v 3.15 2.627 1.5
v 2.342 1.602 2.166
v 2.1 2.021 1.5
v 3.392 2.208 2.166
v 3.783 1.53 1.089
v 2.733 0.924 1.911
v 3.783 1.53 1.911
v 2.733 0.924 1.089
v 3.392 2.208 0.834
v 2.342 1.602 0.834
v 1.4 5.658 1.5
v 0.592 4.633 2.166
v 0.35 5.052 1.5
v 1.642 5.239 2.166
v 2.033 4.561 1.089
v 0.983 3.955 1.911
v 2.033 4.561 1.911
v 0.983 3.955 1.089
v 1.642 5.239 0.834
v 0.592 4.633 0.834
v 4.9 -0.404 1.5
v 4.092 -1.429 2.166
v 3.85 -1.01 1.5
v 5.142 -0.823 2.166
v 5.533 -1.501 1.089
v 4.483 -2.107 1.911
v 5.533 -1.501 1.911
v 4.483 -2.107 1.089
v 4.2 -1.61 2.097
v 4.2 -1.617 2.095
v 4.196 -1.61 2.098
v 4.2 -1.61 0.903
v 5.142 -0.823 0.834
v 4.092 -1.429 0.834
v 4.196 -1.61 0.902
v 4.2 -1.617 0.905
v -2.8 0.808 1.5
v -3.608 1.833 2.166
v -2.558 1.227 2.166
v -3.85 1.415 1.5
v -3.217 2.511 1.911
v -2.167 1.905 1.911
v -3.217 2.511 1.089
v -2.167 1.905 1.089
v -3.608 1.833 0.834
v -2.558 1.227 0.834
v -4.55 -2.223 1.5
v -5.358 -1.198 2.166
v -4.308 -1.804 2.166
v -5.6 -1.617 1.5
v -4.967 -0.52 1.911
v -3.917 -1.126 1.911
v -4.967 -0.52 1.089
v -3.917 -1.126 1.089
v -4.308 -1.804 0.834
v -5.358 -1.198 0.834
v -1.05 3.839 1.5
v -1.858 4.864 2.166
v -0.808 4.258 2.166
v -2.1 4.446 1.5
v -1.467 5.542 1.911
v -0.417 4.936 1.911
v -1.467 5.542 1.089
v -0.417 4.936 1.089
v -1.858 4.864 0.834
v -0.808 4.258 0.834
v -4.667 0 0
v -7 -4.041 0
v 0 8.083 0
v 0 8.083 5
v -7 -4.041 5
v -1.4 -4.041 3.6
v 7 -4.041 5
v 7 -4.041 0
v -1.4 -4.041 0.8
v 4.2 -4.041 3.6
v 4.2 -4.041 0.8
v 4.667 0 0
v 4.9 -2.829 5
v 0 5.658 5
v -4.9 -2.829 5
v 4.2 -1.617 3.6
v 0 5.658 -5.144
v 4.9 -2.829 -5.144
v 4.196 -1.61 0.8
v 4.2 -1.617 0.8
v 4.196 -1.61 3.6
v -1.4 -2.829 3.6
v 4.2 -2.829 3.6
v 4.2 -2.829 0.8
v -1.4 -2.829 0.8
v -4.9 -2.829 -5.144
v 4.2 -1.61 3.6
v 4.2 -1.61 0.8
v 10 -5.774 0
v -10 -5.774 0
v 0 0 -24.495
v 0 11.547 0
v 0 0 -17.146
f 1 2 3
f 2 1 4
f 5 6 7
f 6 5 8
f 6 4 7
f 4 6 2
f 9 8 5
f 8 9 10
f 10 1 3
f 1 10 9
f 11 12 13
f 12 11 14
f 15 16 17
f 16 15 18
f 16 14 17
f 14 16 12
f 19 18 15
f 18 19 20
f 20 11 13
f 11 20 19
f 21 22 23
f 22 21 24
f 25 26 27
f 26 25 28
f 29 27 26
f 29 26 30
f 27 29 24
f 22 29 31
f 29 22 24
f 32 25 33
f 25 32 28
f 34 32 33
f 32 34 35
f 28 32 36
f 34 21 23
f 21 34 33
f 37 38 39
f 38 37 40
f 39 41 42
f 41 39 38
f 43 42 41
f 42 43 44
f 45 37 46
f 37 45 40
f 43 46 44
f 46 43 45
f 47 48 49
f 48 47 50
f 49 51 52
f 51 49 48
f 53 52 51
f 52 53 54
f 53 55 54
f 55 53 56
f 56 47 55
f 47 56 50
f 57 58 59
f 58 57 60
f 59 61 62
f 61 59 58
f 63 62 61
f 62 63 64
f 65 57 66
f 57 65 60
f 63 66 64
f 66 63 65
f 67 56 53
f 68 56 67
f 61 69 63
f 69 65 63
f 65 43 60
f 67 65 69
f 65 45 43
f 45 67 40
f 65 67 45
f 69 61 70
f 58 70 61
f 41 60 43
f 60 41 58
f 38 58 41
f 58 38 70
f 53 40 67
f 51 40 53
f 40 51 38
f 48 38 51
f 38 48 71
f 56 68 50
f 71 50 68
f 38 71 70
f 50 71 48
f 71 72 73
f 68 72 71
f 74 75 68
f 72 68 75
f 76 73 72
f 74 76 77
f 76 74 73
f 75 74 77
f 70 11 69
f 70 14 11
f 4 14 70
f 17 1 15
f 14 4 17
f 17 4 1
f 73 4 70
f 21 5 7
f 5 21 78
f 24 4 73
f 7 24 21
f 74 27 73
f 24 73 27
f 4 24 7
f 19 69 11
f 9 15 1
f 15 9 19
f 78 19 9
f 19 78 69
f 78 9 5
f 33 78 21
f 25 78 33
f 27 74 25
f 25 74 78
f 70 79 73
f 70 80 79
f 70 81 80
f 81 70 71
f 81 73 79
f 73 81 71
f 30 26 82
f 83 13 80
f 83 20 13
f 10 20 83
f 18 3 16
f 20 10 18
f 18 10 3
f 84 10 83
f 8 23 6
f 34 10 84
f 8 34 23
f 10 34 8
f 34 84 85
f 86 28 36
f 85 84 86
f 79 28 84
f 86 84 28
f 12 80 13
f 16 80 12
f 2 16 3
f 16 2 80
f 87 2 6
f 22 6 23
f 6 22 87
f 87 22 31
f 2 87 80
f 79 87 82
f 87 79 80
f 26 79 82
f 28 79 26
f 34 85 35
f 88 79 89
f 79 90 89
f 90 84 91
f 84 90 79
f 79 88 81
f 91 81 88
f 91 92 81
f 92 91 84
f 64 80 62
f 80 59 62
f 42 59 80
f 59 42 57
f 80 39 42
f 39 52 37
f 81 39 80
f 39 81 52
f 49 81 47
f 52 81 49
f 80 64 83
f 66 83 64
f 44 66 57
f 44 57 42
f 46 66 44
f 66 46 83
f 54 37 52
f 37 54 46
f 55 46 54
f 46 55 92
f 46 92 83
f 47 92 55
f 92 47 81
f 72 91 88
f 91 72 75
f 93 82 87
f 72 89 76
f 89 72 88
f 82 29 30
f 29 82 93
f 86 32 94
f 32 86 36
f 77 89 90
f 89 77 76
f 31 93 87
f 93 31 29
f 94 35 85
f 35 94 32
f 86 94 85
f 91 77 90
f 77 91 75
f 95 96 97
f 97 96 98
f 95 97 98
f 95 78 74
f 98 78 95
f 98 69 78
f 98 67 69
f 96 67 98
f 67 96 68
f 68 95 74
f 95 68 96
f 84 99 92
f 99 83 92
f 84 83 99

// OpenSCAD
// file: Common.scad
// Create a 3-d pyramid with a triangular base (thus 4 sides/faces).
module triangularPyramid(sideLength=20) {
    // For a 4-sided pyramid, make the maximum y coordinate such that
    // each side of the pyramid is length 20.
    triangularHeight = sideLength * sin(60);
    // Make the y coordinate for the top of the pyramid the center of
    // an equilateral triangle on the xy plane with sides of length 20.
    topY = sideLength * 0.5 * tan(30);
    // To find the topZ height, start from [-triangularHeight, 0]
    // (viewing yz plane, so x coordinates make no sense)
    // and move up (positive z direction) 20 units at an angle to intersect
    // at (-topY, topZ).
    // So (triangularHeight - topY)^2 + (topZ)^2 == 20^2
    // and we solve for topZ
    deltaYForTop = triangularHeight - topY;
    topZ = sqrt(sideLength * sideLength - deltaYForTop * deltaYForTop);

    polyhedron(
        // the three points at base
        points= [ [0,0,0],[sideLength,0,0],[sideLength * 0.5, triangularHeight, 0],
        // the apex point
                  [sideLength * 0.5, topY, topZ]  ],
        // each triangle side
        faces=[ [0,3,1],[1,3,2],[2,3,0],[0,1,2] ]);
}

module trianglularConnector(sideLength = 20) {
    height = sideLength * sin(60);

    polyhedron(
        points = [ [0,0,-5], [sideLength,0, -5], [sideLength * 0.5, height, -5],
                   [0,0,10], [sideLength,0, 10], [sideLength * 0.5, height, 10] ],
        faces = [ /* bottom */ [0, 1, 2], /* top */ [3, 5, 4],
            /* 3 sides: */ [0, 3, 4, 1], [1, 4, 5, 2], [2, 5, 3, 0] ]);
}

module TopPiece() {
    // The top
    scale([1, 1, 1.2]) // is stretched out vertically a bit
    triangularPyramid();

    //
    // 3 little pyramids sticking out of the top:
    //
    littleScale = 0.6;

    // 1. is on the x axis
    translate([10 * (1 - littleScale), 0, 8])
    scale(littleScale)
    scale([1, 1, 1.2])
    triangularPyramid();

    mainTopY = 20 * 0.5 * tan(30);
    littleTopY = mainTopY * littleScale;
    topToTopDist = mainTopY - littleTopY;

    // 2. is rotated clockwise 120 degrees around the top-to-bottom line
    //    To do that rotation, translate the pyramid to be centered over 0,0,z
    //    then rotate, then untranslate.
    //    However, rotating a triangle by 120 degrees is the same triangle, so
    //    we will just move the thing a little off in the -x, +y direction :-)
    translate([-1 * topToTopDist * cos(30), topToTopDist * (1 + sin(30)), 0])
    translate([10 * (1 - littleScale), 0, 8])
    scale(littleScale)
    scale([1, 1, 1.2])
    triangularPyramid();

    // 3. is rotated counter-clockwise 120 degrees around the top-to-bottom line
    //    To do that rotation, translate the pyramid to be centered over 0,0,z
    //    then rotate, then untranslate.
    //    However, rotating a triangle by 120 degrees is the same triangle, so
    //    we will just move the thing a little off in the +x, +y direction :-)
    translate([topToTopDist * cos(30), topToTopDist * (1 + sin(30)), 0])
    translate([10 * (1 - littleScale), 0, 8])
    scale(littleScale)
    scale([1, 1, 1.2])
    triangularPyramid();
}

module BottomPiece() {
    // The bottom
    scale([1, 1, 1.5]) // is stretched out vertically a bit
    translate([20,0,0])
    rotate([0,180,0])
    triangularPyramid();
}
// main file
// Gorg Super-Chip, bottom piece
// (it's mostly marketing)

// Using this picture as a reference:
// http://dreamworks.wikia.com/wiki/Gorg_Super-Chip

use <Common.scad>;

color("DimGrey") {
    holeScale = 0.7;

    translate([0,0,-2])
    scale(holeScale)
    difference() {
        translate([-10, -10 * tan(30), 0])
        trianglularConnector();

        scale([holeScale, holeScale, 1.1])
        translate([-10, -10 * tan(30), 0])
        trianglularConnector();

        // Circular holes in the central trench for light:
        for(rotation = [120,240]) {
            rotate([0,0,rotation])
            translate([0,-4,5])
            rotate([90,0,0])
            cylinder(h=50, r1=1, r2=1);

            rotate([0,0,rotation])
            translate([5,-4,5])
            rotate([90,0,0])
            cylinder(h=50, r1=1, r2=1);

            rotate([0,0,rotation])
            translate([-5,-4,5])
            rotate([90,0,0])
            cylinder(h=50, r1=1, r2=1);
        }

        // Rectangular gap in the central trench for an on/off switch:
        switchSize = 4;
        translate([-0.5 * switchSize,-9.5,4])
        scale([2,1.8,1])
        cube(switchSize);
    }

    difference() {
        translate([-10, -10 * tan(30), 0])
        BottomPiece();

        scale(holeScale)
        translate([-10, -10 * tan(30), 0])
        BottomPiece();
    }
}
